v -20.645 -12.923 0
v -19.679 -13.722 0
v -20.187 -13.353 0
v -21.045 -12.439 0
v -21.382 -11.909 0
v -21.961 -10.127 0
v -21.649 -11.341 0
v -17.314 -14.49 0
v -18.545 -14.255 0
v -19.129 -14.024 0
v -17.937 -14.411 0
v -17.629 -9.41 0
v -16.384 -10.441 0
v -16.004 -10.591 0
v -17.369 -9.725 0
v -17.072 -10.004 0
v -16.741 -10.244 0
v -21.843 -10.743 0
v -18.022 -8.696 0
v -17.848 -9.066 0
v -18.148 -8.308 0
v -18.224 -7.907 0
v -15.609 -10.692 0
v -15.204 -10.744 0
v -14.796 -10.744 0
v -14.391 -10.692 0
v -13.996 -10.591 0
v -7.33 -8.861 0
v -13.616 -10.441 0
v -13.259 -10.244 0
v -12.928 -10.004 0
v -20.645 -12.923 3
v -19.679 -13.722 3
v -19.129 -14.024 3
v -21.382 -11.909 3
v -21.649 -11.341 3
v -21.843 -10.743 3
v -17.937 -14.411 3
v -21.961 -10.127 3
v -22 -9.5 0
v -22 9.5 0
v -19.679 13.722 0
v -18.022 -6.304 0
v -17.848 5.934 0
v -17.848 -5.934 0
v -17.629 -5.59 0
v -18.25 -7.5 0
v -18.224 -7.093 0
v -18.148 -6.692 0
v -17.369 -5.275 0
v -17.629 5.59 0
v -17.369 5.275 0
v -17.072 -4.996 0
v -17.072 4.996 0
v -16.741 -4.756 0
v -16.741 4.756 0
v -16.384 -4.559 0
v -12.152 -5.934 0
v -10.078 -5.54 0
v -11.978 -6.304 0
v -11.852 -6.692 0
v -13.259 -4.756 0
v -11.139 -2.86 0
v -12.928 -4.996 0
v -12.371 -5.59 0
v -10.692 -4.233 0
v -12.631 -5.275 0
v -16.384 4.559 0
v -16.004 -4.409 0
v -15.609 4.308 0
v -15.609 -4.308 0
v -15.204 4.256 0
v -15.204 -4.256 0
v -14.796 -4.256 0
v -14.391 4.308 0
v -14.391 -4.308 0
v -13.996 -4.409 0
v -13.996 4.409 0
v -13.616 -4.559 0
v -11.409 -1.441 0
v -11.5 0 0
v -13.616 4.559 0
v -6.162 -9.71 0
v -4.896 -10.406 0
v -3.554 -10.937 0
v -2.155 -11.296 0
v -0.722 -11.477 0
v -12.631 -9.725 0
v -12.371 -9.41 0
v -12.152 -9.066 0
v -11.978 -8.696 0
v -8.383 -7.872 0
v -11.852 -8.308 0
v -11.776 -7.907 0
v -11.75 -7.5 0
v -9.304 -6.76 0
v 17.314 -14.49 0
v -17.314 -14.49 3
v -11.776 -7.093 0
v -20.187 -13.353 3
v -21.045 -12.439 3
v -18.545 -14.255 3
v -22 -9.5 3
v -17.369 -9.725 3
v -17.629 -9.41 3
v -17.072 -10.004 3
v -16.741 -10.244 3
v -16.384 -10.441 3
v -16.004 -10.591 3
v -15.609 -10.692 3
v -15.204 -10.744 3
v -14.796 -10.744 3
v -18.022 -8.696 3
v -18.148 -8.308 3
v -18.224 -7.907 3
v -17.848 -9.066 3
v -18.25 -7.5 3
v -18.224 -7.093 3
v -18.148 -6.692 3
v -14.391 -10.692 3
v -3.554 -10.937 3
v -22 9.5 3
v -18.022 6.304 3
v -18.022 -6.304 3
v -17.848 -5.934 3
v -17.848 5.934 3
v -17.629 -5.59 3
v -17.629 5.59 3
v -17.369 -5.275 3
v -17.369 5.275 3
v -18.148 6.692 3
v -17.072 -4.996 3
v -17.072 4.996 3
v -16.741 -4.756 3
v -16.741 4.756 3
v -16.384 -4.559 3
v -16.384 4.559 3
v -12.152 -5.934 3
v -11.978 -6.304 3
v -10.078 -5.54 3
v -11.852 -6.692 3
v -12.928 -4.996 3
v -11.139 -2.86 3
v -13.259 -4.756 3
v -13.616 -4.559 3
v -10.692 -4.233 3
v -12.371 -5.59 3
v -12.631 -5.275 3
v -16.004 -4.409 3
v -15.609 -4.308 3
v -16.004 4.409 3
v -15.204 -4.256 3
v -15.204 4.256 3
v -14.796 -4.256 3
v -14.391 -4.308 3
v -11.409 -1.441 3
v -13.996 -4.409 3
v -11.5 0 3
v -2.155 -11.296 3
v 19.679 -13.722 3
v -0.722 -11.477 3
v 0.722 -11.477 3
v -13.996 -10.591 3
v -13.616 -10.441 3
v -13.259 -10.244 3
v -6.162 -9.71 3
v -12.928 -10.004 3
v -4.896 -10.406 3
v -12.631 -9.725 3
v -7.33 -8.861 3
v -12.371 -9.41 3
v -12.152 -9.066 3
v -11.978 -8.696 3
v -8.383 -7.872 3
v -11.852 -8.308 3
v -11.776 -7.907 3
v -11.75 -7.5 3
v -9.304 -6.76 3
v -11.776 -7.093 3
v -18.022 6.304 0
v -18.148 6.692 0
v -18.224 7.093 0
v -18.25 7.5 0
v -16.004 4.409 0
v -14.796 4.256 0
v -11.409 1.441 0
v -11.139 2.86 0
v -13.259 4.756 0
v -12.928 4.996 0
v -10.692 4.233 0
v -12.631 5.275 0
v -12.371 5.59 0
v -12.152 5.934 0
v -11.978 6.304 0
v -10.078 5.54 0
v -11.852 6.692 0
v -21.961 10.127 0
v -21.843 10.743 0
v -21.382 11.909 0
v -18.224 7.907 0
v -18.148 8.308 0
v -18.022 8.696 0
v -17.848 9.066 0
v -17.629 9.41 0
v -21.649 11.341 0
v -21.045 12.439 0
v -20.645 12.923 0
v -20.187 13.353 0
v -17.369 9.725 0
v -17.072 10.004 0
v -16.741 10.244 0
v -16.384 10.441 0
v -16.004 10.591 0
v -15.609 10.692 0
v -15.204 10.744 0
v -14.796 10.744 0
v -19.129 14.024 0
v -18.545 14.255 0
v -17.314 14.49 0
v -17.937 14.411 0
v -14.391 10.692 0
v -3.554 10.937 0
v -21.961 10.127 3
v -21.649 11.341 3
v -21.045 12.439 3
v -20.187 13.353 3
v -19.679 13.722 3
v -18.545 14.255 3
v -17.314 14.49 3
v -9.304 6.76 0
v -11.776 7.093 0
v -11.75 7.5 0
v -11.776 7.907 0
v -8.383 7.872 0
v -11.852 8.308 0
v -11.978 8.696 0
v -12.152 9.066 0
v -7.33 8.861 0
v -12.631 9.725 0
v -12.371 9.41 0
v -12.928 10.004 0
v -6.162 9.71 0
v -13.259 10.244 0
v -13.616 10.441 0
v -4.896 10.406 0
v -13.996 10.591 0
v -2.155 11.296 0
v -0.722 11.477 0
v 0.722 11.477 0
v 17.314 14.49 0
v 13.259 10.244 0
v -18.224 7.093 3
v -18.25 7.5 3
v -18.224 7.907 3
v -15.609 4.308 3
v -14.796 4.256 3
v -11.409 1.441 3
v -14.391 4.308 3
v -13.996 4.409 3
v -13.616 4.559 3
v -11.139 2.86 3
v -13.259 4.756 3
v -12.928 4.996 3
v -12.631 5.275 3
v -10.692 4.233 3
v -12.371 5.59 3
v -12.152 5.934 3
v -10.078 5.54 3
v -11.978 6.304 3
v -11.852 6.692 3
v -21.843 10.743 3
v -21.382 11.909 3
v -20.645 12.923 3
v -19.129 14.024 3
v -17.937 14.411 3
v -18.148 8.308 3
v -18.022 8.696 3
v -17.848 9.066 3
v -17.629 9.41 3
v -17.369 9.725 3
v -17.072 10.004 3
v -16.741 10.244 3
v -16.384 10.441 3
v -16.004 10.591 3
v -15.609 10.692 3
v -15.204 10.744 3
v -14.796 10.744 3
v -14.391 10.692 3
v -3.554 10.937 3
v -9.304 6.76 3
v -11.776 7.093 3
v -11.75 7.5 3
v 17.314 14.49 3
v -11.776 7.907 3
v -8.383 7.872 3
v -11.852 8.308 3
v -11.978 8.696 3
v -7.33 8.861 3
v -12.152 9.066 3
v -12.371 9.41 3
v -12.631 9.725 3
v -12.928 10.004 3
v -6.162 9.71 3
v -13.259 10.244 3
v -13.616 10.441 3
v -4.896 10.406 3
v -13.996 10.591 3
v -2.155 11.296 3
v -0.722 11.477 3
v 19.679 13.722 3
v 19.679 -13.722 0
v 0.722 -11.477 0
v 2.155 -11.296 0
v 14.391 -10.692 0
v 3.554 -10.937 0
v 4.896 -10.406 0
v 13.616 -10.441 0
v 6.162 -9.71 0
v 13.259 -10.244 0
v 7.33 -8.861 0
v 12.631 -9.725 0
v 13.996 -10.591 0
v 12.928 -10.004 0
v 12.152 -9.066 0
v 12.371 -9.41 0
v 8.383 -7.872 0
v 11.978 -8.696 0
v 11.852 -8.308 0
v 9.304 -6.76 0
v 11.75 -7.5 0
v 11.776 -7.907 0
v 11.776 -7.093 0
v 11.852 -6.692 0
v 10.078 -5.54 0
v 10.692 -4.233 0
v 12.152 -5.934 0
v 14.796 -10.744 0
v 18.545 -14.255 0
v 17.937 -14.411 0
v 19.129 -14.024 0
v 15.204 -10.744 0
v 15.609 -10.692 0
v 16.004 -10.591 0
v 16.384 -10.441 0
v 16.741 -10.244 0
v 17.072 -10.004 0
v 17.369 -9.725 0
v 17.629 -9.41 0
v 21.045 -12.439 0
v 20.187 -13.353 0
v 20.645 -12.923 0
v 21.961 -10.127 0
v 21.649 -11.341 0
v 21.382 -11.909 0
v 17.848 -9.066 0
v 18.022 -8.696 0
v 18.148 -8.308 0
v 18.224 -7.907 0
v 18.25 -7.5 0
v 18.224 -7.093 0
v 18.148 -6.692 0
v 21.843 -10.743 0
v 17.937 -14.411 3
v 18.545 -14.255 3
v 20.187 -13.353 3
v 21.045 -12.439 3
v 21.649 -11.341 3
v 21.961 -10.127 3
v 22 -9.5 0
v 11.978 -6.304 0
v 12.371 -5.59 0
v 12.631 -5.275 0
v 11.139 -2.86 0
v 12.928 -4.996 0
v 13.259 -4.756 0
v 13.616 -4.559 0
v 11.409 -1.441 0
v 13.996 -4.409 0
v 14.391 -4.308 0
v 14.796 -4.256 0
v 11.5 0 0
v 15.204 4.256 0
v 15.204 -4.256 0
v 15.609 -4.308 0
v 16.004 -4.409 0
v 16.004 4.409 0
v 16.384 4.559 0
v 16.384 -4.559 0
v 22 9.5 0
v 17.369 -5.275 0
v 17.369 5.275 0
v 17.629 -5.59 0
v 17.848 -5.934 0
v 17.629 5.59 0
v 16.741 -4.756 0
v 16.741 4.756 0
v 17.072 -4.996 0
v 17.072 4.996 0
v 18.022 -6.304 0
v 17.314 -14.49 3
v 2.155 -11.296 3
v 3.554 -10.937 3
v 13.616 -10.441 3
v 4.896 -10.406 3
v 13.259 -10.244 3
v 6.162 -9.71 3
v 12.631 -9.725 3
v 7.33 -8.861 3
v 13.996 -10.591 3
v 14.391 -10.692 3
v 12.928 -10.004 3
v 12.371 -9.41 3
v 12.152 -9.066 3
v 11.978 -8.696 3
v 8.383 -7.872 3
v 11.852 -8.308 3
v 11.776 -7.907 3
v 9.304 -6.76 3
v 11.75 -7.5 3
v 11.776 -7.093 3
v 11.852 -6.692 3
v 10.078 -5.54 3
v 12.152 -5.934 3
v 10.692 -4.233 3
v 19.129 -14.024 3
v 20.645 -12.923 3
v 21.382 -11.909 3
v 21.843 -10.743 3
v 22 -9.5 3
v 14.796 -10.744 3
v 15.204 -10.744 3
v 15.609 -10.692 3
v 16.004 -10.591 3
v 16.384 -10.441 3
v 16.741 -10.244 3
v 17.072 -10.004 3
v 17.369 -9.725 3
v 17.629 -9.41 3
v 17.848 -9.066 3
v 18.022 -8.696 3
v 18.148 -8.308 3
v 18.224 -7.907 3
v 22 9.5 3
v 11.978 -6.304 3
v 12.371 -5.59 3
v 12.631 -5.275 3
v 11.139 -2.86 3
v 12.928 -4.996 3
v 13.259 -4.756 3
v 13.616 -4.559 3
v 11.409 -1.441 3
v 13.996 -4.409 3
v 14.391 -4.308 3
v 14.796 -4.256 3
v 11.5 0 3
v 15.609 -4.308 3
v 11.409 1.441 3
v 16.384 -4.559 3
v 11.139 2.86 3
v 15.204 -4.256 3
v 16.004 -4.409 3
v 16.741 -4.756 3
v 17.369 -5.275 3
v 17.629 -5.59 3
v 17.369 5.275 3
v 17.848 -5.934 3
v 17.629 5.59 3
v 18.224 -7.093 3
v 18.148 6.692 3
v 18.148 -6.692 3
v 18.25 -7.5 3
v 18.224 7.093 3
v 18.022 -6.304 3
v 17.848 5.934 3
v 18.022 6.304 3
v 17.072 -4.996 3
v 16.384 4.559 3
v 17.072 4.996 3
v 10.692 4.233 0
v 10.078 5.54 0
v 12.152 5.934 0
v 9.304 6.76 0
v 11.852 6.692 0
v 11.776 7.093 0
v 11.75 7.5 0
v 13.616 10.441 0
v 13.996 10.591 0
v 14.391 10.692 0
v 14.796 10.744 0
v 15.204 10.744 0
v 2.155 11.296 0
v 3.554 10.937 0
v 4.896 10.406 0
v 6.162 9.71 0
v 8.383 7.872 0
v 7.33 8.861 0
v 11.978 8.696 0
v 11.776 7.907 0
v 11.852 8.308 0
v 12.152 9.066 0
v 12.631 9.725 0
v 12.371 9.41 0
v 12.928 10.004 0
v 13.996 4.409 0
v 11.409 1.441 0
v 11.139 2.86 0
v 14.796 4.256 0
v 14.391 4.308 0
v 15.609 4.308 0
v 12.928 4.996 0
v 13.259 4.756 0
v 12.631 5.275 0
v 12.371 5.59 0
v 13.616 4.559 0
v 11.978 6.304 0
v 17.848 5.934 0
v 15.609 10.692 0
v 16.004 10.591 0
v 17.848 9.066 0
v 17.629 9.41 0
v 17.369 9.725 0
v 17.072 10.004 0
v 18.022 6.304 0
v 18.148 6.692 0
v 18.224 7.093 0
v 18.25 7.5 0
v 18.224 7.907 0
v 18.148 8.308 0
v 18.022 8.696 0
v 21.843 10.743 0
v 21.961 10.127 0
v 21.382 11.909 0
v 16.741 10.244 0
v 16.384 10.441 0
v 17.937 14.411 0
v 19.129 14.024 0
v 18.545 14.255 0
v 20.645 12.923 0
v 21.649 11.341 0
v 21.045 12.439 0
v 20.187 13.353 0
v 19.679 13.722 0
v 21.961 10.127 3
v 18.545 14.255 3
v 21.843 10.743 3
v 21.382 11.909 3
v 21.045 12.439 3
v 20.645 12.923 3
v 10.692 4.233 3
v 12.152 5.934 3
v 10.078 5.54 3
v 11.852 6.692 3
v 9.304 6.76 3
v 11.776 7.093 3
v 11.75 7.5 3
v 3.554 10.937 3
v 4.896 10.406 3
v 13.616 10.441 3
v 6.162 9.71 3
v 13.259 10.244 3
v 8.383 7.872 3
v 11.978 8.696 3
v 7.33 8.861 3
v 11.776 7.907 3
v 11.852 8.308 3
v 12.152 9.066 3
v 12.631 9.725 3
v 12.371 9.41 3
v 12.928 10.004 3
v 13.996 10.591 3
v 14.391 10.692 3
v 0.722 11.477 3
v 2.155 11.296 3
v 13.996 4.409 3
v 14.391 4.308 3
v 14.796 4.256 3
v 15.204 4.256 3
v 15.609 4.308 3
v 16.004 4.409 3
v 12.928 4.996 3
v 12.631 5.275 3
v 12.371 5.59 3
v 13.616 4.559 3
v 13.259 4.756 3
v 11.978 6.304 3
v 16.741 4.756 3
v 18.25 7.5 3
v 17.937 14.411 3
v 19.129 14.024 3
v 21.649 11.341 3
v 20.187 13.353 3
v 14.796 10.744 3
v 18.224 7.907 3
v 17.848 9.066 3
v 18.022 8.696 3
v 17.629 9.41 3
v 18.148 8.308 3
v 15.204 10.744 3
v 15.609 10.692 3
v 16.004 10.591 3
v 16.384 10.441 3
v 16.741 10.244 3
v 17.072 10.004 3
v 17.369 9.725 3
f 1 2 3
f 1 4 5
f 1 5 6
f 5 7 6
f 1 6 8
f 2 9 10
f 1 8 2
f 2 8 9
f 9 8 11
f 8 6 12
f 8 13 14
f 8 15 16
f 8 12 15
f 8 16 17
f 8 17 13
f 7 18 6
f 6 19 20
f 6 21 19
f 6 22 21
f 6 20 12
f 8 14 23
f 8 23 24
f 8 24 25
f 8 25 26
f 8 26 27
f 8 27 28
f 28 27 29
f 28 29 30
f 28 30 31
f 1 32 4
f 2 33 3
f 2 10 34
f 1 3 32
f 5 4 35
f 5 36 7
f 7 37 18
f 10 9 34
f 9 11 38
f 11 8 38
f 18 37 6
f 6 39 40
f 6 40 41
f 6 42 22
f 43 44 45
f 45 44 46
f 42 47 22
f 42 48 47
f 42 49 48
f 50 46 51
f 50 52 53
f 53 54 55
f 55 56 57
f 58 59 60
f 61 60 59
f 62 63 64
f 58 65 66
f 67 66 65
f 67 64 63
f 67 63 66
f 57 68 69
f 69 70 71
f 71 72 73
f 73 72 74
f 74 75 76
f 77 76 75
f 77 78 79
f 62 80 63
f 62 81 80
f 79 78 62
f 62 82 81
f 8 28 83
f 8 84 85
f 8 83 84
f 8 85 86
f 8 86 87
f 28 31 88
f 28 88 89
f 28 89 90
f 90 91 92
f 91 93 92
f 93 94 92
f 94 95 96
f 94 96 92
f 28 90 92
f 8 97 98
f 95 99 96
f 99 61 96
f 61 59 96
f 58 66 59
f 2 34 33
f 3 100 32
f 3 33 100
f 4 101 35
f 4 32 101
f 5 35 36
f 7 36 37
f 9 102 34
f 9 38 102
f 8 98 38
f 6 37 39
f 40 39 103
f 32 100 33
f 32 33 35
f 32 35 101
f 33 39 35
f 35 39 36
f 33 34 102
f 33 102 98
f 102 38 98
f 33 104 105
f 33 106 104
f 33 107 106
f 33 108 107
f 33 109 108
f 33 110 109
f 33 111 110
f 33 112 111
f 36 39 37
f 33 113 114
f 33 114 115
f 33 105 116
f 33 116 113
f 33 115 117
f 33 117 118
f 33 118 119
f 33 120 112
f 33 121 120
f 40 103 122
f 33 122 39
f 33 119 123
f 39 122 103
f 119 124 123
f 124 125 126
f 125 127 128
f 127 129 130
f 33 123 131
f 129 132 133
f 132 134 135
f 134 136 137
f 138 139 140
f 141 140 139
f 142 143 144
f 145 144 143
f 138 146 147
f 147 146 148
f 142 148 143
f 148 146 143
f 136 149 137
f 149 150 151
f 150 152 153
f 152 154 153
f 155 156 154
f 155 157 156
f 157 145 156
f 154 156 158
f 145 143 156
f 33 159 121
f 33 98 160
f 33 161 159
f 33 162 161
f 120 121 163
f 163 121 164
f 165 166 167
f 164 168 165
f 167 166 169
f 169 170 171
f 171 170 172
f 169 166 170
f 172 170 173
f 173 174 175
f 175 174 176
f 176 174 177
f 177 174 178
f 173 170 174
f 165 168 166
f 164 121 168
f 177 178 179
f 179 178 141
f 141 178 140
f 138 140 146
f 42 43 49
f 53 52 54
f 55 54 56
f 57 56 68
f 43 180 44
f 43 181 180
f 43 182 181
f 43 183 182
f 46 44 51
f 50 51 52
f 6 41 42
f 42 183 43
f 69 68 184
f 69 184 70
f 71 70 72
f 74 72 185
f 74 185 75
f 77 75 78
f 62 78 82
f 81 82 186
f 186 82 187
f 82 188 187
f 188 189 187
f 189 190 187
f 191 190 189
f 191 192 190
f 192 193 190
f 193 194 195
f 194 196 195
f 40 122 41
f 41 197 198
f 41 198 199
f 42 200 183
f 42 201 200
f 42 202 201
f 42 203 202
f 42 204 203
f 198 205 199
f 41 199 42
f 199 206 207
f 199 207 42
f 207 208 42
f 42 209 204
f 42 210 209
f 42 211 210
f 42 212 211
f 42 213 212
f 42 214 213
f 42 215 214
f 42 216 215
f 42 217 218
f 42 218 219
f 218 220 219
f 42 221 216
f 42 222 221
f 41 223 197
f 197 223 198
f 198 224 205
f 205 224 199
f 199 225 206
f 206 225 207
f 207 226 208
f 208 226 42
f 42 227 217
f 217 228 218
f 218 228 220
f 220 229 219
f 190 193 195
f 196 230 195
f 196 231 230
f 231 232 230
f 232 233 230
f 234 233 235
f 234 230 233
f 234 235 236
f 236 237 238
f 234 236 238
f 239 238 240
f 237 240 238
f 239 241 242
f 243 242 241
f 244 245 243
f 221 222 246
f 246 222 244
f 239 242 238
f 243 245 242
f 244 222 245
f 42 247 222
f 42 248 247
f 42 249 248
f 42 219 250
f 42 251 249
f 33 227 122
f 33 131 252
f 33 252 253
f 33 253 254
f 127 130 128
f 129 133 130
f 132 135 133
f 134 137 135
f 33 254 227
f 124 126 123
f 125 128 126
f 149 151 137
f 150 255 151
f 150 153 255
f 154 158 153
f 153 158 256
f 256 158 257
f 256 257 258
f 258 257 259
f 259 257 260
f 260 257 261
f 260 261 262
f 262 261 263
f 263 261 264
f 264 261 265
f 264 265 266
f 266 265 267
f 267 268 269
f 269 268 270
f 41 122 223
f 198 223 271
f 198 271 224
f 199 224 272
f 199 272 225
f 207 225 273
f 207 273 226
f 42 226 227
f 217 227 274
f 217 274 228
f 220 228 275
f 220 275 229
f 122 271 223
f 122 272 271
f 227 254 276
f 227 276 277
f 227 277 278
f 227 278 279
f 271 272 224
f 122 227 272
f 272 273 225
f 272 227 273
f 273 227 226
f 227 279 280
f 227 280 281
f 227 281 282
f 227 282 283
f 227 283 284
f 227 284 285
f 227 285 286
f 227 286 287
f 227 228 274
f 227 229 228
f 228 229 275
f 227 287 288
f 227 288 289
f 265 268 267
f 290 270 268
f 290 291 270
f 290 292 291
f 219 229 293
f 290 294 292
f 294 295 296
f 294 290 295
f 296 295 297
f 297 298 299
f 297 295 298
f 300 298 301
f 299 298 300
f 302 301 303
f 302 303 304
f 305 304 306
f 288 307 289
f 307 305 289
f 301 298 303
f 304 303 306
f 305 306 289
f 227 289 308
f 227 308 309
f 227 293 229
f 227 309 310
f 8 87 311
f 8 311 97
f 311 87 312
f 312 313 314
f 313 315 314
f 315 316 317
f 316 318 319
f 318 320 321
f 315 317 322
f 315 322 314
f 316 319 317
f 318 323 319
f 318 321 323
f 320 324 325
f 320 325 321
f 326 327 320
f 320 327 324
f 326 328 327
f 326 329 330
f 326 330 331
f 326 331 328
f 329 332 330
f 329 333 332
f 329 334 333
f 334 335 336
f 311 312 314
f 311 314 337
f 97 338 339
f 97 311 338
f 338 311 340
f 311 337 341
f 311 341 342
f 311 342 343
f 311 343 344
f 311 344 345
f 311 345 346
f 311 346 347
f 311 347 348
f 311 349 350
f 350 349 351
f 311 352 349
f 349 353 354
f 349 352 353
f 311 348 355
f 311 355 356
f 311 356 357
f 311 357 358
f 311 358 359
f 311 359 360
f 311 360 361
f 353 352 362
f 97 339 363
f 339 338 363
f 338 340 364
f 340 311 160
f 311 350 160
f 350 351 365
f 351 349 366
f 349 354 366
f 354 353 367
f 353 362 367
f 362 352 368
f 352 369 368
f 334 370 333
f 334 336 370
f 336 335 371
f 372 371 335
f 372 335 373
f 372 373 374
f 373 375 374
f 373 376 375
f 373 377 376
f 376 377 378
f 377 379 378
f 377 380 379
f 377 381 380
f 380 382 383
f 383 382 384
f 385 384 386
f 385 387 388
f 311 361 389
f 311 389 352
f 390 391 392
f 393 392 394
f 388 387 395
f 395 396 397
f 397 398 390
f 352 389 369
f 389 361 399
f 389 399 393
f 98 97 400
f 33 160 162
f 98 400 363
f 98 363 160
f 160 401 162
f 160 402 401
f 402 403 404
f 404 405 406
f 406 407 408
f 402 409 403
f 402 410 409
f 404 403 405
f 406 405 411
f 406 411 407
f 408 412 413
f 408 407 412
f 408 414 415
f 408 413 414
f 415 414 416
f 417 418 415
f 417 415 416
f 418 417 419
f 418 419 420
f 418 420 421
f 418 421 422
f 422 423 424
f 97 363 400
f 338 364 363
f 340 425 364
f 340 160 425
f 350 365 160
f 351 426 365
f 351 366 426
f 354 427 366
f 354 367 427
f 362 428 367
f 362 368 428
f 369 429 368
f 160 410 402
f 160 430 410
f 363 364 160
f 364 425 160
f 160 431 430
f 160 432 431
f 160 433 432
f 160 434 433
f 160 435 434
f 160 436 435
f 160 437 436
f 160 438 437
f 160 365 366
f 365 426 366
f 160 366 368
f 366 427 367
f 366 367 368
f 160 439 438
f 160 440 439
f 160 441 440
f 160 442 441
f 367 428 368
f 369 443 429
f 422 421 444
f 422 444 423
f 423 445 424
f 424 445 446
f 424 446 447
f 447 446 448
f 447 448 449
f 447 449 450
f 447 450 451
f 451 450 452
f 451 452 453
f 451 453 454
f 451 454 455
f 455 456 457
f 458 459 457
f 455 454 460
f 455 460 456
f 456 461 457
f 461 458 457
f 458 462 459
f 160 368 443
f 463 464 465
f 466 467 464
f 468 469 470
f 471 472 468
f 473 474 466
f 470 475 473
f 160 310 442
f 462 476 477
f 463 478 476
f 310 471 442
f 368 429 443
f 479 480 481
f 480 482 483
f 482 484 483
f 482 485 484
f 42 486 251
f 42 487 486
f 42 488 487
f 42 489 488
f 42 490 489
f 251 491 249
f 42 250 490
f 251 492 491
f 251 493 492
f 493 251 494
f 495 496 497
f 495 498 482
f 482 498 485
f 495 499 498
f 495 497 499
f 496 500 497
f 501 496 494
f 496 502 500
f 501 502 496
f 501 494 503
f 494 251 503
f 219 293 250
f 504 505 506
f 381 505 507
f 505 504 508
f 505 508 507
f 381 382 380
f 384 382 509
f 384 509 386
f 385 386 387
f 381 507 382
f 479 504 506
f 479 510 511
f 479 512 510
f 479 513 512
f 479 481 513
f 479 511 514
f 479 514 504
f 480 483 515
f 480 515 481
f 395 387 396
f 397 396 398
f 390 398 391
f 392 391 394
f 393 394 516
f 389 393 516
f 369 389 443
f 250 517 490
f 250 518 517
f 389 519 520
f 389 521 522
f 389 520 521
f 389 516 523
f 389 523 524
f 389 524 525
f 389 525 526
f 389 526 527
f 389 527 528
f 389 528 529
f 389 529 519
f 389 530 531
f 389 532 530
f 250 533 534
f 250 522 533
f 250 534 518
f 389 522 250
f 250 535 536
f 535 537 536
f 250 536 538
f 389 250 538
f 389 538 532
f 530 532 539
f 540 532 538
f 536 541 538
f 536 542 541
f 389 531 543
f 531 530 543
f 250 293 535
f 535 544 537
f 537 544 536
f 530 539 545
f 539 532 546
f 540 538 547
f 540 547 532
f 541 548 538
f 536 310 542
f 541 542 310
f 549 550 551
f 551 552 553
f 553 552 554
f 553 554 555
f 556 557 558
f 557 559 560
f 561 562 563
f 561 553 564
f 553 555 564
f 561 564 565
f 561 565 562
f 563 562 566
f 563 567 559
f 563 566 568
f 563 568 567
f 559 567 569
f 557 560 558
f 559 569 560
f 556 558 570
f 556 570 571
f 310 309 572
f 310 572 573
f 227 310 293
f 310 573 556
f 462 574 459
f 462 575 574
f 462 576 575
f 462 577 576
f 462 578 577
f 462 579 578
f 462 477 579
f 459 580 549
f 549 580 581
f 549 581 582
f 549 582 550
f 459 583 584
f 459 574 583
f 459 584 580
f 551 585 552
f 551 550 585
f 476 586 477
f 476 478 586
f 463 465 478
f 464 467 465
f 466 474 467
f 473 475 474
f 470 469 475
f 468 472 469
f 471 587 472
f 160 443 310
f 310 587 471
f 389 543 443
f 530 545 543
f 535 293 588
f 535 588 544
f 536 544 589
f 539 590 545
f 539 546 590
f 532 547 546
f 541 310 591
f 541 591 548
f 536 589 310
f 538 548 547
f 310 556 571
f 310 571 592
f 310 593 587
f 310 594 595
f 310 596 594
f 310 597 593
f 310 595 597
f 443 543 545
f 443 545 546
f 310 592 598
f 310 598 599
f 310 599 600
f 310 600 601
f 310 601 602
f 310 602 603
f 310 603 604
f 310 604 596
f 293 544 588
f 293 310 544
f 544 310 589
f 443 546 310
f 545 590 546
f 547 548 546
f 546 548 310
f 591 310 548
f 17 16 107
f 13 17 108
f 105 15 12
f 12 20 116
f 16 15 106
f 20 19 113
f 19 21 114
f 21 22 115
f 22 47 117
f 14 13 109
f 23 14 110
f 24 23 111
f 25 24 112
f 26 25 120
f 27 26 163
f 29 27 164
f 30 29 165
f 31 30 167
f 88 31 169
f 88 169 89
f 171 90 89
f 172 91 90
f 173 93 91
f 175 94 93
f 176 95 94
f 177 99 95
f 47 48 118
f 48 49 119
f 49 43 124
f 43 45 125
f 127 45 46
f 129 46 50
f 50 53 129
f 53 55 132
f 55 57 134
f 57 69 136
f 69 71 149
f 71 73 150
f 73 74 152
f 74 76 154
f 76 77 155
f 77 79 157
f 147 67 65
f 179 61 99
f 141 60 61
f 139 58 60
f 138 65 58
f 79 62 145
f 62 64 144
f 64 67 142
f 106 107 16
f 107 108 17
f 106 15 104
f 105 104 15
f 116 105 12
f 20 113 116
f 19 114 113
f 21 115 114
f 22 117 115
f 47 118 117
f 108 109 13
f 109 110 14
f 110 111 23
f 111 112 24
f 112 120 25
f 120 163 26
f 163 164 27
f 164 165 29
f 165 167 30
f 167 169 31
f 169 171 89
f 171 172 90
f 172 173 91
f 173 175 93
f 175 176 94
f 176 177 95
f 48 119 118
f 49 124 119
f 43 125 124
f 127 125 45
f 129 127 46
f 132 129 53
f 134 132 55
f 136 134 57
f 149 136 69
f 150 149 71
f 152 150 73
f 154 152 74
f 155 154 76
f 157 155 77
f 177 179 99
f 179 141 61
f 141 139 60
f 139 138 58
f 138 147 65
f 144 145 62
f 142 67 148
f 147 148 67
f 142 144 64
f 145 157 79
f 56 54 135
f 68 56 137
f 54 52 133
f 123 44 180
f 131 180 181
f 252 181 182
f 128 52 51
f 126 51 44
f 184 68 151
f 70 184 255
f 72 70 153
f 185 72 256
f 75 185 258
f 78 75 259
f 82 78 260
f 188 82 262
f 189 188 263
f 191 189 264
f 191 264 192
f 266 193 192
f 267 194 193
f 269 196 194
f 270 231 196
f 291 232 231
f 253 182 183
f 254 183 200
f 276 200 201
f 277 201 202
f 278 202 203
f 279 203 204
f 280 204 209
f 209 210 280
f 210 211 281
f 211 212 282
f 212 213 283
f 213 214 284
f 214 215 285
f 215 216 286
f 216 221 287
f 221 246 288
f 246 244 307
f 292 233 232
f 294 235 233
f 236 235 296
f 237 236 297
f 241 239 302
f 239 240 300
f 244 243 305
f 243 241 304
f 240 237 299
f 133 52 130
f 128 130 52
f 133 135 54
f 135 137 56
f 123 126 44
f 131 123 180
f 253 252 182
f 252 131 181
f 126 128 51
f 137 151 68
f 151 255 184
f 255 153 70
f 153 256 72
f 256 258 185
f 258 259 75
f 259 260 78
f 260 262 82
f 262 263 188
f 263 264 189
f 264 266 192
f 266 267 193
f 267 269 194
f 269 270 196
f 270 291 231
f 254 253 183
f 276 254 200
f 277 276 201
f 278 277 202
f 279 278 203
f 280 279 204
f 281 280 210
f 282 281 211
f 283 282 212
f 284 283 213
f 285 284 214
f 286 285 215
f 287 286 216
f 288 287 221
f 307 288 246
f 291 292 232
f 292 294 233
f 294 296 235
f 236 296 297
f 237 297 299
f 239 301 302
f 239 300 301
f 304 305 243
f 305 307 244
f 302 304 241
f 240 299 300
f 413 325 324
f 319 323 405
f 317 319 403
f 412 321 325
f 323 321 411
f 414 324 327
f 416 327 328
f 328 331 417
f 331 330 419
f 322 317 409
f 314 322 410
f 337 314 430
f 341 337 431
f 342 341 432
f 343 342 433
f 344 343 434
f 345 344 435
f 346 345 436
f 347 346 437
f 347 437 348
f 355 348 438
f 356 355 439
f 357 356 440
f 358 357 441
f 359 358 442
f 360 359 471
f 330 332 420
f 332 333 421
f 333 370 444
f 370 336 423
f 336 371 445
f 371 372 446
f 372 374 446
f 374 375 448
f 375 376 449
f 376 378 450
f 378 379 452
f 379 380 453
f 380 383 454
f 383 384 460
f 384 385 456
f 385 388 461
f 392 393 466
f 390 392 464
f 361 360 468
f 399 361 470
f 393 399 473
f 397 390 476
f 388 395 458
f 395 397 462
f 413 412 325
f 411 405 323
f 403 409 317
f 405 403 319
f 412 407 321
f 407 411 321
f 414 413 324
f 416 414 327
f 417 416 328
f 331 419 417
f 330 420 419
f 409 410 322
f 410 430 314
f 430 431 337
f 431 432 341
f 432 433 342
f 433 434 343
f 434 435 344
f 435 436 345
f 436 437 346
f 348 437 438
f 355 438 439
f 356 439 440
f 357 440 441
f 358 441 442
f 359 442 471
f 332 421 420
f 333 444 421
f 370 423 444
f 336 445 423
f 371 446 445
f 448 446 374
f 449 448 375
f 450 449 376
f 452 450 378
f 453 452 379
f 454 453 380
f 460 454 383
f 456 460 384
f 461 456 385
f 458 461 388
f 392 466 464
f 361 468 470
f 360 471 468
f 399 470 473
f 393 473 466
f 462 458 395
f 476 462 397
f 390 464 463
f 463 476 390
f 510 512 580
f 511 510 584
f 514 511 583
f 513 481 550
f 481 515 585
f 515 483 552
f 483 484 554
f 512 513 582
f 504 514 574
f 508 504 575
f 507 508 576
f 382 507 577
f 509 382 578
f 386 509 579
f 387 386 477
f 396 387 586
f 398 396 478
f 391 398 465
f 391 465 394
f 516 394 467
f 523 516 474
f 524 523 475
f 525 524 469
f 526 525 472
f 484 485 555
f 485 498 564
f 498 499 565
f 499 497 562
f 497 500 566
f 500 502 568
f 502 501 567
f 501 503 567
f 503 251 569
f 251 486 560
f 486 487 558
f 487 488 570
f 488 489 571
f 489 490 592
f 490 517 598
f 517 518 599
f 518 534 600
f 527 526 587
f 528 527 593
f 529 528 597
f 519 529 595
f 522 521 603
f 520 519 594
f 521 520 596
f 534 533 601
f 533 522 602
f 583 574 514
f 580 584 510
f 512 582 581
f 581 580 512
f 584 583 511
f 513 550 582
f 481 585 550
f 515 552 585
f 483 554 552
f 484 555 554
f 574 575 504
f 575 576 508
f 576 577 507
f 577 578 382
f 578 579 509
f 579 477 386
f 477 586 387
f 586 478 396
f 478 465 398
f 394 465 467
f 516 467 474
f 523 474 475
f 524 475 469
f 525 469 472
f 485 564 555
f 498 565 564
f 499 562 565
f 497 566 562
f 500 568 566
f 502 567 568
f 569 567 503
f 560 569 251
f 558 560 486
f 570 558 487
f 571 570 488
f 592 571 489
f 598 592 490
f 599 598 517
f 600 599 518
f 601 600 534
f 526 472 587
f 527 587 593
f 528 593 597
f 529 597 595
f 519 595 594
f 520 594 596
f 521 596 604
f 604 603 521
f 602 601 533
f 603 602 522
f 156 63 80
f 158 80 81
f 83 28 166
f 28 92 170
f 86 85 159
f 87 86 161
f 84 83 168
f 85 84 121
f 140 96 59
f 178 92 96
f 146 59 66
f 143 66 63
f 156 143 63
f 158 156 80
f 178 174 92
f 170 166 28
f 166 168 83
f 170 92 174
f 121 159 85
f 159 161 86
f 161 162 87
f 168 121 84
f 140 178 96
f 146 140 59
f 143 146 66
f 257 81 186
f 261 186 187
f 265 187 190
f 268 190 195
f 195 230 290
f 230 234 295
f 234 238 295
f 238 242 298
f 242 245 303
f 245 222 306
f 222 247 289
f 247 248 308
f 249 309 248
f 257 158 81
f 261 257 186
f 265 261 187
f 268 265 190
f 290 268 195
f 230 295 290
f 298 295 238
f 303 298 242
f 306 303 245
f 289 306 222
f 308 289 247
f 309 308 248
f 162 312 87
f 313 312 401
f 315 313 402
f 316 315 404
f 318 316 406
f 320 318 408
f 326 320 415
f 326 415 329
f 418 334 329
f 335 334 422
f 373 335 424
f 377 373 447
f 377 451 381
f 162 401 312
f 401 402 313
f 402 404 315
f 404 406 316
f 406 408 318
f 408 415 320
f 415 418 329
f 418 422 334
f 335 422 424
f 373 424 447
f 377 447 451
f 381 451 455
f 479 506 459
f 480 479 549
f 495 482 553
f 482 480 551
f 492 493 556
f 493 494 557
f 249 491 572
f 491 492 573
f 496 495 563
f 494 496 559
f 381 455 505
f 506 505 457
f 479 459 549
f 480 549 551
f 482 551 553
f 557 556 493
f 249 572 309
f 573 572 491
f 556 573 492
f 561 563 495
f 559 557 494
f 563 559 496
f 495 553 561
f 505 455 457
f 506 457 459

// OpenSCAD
$fn = 50;

difference() {
	union() {
		hull() {
			translate(v = [-17.0, 9.5, 0]) {
				cylinder(h = 3, r = 5);
			}
			translate(v = [17.0, 9.5, 0]) {
				cylinder(h = 3, r = 5);
			}
			translate(v = [-17.0, -9.5, 0]) {
				cylinder(h = 3, r = 5);
			}
			translate(v = [17.0, -9.5, 0]) {
				cylinder(h = 3, r = 5);
			}
		}
	}
	union() {
		translate(v = [-15.0, -7.5, 0]) {
			cylinder(h = 3, r = 3.25);
		}
		translate(v = [-15.0, 7.5, 0]) {
			cylinder(h = 3, r = 3.25);
		}
		translate(v = [15.0, -7.5, 0]) {
			cylinder(h = 3, r = 3.25);
		}
		translate(v = [15.0, 7.5, 0]) {
			cylinder(h = 3, r = 3.25);
		}
		cylinder(h = 3, r = 11.5);
	}
}
